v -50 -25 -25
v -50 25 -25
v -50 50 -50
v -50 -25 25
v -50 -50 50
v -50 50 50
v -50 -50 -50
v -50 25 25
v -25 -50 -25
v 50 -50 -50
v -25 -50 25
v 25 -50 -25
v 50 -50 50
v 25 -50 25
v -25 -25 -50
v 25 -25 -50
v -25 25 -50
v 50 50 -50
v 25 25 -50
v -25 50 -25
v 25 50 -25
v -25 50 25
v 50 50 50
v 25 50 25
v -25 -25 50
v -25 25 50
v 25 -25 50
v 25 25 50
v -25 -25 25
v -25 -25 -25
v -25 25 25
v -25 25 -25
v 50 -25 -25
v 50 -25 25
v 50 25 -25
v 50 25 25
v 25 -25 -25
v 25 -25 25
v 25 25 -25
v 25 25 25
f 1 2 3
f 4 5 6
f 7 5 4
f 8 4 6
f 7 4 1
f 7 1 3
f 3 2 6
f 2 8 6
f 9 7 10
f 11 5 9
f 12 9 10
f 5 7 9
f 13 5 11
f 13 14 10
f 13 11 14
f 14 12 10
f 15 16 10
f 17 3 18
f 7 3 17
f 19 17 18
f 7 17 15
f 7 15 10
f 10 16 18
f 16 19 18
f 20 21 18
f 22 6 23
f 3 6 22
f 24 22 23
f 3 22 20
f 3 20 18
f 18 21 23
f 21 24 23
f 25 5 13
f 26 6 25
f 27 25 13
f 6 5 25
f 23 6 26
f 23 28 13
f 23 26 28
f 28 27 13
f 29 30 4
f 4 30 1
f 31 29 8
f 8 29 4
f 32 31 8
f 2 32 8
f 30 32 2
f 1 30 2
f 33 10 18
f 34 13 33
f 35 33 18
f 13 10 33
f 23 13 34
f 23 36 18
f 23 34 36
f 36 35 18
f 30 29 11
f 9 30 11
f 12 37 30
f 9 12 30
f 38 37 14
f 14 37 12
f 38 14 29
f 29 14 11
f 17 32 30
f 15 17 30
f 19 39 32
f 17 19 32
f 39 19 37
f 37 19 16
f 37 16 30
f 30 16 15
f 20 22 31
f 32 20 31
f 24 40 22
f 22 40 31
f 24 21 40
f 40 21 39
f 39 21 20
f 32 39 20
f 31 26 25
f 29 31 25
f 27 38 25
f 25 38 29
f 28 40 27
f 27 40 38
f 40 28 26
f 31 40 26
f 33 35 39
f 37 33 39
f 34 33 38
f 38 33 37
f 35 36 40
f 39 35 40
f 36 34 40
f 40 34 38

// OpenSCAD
translate ([ 0,0,0]) difference(){
	cube( [ 100, 100, 100 ], center=true );
	translate( [ 0, 0, -1] ) cube( [ 50, 50, 104 ], center=true );
	translate( [-1, 0, 0] ) cube( [ 104, 50, 50 ], center=true );
	translate( [ 0,-1, 0] ) cube( [ 50, 104, 50 ], center=true );

}
